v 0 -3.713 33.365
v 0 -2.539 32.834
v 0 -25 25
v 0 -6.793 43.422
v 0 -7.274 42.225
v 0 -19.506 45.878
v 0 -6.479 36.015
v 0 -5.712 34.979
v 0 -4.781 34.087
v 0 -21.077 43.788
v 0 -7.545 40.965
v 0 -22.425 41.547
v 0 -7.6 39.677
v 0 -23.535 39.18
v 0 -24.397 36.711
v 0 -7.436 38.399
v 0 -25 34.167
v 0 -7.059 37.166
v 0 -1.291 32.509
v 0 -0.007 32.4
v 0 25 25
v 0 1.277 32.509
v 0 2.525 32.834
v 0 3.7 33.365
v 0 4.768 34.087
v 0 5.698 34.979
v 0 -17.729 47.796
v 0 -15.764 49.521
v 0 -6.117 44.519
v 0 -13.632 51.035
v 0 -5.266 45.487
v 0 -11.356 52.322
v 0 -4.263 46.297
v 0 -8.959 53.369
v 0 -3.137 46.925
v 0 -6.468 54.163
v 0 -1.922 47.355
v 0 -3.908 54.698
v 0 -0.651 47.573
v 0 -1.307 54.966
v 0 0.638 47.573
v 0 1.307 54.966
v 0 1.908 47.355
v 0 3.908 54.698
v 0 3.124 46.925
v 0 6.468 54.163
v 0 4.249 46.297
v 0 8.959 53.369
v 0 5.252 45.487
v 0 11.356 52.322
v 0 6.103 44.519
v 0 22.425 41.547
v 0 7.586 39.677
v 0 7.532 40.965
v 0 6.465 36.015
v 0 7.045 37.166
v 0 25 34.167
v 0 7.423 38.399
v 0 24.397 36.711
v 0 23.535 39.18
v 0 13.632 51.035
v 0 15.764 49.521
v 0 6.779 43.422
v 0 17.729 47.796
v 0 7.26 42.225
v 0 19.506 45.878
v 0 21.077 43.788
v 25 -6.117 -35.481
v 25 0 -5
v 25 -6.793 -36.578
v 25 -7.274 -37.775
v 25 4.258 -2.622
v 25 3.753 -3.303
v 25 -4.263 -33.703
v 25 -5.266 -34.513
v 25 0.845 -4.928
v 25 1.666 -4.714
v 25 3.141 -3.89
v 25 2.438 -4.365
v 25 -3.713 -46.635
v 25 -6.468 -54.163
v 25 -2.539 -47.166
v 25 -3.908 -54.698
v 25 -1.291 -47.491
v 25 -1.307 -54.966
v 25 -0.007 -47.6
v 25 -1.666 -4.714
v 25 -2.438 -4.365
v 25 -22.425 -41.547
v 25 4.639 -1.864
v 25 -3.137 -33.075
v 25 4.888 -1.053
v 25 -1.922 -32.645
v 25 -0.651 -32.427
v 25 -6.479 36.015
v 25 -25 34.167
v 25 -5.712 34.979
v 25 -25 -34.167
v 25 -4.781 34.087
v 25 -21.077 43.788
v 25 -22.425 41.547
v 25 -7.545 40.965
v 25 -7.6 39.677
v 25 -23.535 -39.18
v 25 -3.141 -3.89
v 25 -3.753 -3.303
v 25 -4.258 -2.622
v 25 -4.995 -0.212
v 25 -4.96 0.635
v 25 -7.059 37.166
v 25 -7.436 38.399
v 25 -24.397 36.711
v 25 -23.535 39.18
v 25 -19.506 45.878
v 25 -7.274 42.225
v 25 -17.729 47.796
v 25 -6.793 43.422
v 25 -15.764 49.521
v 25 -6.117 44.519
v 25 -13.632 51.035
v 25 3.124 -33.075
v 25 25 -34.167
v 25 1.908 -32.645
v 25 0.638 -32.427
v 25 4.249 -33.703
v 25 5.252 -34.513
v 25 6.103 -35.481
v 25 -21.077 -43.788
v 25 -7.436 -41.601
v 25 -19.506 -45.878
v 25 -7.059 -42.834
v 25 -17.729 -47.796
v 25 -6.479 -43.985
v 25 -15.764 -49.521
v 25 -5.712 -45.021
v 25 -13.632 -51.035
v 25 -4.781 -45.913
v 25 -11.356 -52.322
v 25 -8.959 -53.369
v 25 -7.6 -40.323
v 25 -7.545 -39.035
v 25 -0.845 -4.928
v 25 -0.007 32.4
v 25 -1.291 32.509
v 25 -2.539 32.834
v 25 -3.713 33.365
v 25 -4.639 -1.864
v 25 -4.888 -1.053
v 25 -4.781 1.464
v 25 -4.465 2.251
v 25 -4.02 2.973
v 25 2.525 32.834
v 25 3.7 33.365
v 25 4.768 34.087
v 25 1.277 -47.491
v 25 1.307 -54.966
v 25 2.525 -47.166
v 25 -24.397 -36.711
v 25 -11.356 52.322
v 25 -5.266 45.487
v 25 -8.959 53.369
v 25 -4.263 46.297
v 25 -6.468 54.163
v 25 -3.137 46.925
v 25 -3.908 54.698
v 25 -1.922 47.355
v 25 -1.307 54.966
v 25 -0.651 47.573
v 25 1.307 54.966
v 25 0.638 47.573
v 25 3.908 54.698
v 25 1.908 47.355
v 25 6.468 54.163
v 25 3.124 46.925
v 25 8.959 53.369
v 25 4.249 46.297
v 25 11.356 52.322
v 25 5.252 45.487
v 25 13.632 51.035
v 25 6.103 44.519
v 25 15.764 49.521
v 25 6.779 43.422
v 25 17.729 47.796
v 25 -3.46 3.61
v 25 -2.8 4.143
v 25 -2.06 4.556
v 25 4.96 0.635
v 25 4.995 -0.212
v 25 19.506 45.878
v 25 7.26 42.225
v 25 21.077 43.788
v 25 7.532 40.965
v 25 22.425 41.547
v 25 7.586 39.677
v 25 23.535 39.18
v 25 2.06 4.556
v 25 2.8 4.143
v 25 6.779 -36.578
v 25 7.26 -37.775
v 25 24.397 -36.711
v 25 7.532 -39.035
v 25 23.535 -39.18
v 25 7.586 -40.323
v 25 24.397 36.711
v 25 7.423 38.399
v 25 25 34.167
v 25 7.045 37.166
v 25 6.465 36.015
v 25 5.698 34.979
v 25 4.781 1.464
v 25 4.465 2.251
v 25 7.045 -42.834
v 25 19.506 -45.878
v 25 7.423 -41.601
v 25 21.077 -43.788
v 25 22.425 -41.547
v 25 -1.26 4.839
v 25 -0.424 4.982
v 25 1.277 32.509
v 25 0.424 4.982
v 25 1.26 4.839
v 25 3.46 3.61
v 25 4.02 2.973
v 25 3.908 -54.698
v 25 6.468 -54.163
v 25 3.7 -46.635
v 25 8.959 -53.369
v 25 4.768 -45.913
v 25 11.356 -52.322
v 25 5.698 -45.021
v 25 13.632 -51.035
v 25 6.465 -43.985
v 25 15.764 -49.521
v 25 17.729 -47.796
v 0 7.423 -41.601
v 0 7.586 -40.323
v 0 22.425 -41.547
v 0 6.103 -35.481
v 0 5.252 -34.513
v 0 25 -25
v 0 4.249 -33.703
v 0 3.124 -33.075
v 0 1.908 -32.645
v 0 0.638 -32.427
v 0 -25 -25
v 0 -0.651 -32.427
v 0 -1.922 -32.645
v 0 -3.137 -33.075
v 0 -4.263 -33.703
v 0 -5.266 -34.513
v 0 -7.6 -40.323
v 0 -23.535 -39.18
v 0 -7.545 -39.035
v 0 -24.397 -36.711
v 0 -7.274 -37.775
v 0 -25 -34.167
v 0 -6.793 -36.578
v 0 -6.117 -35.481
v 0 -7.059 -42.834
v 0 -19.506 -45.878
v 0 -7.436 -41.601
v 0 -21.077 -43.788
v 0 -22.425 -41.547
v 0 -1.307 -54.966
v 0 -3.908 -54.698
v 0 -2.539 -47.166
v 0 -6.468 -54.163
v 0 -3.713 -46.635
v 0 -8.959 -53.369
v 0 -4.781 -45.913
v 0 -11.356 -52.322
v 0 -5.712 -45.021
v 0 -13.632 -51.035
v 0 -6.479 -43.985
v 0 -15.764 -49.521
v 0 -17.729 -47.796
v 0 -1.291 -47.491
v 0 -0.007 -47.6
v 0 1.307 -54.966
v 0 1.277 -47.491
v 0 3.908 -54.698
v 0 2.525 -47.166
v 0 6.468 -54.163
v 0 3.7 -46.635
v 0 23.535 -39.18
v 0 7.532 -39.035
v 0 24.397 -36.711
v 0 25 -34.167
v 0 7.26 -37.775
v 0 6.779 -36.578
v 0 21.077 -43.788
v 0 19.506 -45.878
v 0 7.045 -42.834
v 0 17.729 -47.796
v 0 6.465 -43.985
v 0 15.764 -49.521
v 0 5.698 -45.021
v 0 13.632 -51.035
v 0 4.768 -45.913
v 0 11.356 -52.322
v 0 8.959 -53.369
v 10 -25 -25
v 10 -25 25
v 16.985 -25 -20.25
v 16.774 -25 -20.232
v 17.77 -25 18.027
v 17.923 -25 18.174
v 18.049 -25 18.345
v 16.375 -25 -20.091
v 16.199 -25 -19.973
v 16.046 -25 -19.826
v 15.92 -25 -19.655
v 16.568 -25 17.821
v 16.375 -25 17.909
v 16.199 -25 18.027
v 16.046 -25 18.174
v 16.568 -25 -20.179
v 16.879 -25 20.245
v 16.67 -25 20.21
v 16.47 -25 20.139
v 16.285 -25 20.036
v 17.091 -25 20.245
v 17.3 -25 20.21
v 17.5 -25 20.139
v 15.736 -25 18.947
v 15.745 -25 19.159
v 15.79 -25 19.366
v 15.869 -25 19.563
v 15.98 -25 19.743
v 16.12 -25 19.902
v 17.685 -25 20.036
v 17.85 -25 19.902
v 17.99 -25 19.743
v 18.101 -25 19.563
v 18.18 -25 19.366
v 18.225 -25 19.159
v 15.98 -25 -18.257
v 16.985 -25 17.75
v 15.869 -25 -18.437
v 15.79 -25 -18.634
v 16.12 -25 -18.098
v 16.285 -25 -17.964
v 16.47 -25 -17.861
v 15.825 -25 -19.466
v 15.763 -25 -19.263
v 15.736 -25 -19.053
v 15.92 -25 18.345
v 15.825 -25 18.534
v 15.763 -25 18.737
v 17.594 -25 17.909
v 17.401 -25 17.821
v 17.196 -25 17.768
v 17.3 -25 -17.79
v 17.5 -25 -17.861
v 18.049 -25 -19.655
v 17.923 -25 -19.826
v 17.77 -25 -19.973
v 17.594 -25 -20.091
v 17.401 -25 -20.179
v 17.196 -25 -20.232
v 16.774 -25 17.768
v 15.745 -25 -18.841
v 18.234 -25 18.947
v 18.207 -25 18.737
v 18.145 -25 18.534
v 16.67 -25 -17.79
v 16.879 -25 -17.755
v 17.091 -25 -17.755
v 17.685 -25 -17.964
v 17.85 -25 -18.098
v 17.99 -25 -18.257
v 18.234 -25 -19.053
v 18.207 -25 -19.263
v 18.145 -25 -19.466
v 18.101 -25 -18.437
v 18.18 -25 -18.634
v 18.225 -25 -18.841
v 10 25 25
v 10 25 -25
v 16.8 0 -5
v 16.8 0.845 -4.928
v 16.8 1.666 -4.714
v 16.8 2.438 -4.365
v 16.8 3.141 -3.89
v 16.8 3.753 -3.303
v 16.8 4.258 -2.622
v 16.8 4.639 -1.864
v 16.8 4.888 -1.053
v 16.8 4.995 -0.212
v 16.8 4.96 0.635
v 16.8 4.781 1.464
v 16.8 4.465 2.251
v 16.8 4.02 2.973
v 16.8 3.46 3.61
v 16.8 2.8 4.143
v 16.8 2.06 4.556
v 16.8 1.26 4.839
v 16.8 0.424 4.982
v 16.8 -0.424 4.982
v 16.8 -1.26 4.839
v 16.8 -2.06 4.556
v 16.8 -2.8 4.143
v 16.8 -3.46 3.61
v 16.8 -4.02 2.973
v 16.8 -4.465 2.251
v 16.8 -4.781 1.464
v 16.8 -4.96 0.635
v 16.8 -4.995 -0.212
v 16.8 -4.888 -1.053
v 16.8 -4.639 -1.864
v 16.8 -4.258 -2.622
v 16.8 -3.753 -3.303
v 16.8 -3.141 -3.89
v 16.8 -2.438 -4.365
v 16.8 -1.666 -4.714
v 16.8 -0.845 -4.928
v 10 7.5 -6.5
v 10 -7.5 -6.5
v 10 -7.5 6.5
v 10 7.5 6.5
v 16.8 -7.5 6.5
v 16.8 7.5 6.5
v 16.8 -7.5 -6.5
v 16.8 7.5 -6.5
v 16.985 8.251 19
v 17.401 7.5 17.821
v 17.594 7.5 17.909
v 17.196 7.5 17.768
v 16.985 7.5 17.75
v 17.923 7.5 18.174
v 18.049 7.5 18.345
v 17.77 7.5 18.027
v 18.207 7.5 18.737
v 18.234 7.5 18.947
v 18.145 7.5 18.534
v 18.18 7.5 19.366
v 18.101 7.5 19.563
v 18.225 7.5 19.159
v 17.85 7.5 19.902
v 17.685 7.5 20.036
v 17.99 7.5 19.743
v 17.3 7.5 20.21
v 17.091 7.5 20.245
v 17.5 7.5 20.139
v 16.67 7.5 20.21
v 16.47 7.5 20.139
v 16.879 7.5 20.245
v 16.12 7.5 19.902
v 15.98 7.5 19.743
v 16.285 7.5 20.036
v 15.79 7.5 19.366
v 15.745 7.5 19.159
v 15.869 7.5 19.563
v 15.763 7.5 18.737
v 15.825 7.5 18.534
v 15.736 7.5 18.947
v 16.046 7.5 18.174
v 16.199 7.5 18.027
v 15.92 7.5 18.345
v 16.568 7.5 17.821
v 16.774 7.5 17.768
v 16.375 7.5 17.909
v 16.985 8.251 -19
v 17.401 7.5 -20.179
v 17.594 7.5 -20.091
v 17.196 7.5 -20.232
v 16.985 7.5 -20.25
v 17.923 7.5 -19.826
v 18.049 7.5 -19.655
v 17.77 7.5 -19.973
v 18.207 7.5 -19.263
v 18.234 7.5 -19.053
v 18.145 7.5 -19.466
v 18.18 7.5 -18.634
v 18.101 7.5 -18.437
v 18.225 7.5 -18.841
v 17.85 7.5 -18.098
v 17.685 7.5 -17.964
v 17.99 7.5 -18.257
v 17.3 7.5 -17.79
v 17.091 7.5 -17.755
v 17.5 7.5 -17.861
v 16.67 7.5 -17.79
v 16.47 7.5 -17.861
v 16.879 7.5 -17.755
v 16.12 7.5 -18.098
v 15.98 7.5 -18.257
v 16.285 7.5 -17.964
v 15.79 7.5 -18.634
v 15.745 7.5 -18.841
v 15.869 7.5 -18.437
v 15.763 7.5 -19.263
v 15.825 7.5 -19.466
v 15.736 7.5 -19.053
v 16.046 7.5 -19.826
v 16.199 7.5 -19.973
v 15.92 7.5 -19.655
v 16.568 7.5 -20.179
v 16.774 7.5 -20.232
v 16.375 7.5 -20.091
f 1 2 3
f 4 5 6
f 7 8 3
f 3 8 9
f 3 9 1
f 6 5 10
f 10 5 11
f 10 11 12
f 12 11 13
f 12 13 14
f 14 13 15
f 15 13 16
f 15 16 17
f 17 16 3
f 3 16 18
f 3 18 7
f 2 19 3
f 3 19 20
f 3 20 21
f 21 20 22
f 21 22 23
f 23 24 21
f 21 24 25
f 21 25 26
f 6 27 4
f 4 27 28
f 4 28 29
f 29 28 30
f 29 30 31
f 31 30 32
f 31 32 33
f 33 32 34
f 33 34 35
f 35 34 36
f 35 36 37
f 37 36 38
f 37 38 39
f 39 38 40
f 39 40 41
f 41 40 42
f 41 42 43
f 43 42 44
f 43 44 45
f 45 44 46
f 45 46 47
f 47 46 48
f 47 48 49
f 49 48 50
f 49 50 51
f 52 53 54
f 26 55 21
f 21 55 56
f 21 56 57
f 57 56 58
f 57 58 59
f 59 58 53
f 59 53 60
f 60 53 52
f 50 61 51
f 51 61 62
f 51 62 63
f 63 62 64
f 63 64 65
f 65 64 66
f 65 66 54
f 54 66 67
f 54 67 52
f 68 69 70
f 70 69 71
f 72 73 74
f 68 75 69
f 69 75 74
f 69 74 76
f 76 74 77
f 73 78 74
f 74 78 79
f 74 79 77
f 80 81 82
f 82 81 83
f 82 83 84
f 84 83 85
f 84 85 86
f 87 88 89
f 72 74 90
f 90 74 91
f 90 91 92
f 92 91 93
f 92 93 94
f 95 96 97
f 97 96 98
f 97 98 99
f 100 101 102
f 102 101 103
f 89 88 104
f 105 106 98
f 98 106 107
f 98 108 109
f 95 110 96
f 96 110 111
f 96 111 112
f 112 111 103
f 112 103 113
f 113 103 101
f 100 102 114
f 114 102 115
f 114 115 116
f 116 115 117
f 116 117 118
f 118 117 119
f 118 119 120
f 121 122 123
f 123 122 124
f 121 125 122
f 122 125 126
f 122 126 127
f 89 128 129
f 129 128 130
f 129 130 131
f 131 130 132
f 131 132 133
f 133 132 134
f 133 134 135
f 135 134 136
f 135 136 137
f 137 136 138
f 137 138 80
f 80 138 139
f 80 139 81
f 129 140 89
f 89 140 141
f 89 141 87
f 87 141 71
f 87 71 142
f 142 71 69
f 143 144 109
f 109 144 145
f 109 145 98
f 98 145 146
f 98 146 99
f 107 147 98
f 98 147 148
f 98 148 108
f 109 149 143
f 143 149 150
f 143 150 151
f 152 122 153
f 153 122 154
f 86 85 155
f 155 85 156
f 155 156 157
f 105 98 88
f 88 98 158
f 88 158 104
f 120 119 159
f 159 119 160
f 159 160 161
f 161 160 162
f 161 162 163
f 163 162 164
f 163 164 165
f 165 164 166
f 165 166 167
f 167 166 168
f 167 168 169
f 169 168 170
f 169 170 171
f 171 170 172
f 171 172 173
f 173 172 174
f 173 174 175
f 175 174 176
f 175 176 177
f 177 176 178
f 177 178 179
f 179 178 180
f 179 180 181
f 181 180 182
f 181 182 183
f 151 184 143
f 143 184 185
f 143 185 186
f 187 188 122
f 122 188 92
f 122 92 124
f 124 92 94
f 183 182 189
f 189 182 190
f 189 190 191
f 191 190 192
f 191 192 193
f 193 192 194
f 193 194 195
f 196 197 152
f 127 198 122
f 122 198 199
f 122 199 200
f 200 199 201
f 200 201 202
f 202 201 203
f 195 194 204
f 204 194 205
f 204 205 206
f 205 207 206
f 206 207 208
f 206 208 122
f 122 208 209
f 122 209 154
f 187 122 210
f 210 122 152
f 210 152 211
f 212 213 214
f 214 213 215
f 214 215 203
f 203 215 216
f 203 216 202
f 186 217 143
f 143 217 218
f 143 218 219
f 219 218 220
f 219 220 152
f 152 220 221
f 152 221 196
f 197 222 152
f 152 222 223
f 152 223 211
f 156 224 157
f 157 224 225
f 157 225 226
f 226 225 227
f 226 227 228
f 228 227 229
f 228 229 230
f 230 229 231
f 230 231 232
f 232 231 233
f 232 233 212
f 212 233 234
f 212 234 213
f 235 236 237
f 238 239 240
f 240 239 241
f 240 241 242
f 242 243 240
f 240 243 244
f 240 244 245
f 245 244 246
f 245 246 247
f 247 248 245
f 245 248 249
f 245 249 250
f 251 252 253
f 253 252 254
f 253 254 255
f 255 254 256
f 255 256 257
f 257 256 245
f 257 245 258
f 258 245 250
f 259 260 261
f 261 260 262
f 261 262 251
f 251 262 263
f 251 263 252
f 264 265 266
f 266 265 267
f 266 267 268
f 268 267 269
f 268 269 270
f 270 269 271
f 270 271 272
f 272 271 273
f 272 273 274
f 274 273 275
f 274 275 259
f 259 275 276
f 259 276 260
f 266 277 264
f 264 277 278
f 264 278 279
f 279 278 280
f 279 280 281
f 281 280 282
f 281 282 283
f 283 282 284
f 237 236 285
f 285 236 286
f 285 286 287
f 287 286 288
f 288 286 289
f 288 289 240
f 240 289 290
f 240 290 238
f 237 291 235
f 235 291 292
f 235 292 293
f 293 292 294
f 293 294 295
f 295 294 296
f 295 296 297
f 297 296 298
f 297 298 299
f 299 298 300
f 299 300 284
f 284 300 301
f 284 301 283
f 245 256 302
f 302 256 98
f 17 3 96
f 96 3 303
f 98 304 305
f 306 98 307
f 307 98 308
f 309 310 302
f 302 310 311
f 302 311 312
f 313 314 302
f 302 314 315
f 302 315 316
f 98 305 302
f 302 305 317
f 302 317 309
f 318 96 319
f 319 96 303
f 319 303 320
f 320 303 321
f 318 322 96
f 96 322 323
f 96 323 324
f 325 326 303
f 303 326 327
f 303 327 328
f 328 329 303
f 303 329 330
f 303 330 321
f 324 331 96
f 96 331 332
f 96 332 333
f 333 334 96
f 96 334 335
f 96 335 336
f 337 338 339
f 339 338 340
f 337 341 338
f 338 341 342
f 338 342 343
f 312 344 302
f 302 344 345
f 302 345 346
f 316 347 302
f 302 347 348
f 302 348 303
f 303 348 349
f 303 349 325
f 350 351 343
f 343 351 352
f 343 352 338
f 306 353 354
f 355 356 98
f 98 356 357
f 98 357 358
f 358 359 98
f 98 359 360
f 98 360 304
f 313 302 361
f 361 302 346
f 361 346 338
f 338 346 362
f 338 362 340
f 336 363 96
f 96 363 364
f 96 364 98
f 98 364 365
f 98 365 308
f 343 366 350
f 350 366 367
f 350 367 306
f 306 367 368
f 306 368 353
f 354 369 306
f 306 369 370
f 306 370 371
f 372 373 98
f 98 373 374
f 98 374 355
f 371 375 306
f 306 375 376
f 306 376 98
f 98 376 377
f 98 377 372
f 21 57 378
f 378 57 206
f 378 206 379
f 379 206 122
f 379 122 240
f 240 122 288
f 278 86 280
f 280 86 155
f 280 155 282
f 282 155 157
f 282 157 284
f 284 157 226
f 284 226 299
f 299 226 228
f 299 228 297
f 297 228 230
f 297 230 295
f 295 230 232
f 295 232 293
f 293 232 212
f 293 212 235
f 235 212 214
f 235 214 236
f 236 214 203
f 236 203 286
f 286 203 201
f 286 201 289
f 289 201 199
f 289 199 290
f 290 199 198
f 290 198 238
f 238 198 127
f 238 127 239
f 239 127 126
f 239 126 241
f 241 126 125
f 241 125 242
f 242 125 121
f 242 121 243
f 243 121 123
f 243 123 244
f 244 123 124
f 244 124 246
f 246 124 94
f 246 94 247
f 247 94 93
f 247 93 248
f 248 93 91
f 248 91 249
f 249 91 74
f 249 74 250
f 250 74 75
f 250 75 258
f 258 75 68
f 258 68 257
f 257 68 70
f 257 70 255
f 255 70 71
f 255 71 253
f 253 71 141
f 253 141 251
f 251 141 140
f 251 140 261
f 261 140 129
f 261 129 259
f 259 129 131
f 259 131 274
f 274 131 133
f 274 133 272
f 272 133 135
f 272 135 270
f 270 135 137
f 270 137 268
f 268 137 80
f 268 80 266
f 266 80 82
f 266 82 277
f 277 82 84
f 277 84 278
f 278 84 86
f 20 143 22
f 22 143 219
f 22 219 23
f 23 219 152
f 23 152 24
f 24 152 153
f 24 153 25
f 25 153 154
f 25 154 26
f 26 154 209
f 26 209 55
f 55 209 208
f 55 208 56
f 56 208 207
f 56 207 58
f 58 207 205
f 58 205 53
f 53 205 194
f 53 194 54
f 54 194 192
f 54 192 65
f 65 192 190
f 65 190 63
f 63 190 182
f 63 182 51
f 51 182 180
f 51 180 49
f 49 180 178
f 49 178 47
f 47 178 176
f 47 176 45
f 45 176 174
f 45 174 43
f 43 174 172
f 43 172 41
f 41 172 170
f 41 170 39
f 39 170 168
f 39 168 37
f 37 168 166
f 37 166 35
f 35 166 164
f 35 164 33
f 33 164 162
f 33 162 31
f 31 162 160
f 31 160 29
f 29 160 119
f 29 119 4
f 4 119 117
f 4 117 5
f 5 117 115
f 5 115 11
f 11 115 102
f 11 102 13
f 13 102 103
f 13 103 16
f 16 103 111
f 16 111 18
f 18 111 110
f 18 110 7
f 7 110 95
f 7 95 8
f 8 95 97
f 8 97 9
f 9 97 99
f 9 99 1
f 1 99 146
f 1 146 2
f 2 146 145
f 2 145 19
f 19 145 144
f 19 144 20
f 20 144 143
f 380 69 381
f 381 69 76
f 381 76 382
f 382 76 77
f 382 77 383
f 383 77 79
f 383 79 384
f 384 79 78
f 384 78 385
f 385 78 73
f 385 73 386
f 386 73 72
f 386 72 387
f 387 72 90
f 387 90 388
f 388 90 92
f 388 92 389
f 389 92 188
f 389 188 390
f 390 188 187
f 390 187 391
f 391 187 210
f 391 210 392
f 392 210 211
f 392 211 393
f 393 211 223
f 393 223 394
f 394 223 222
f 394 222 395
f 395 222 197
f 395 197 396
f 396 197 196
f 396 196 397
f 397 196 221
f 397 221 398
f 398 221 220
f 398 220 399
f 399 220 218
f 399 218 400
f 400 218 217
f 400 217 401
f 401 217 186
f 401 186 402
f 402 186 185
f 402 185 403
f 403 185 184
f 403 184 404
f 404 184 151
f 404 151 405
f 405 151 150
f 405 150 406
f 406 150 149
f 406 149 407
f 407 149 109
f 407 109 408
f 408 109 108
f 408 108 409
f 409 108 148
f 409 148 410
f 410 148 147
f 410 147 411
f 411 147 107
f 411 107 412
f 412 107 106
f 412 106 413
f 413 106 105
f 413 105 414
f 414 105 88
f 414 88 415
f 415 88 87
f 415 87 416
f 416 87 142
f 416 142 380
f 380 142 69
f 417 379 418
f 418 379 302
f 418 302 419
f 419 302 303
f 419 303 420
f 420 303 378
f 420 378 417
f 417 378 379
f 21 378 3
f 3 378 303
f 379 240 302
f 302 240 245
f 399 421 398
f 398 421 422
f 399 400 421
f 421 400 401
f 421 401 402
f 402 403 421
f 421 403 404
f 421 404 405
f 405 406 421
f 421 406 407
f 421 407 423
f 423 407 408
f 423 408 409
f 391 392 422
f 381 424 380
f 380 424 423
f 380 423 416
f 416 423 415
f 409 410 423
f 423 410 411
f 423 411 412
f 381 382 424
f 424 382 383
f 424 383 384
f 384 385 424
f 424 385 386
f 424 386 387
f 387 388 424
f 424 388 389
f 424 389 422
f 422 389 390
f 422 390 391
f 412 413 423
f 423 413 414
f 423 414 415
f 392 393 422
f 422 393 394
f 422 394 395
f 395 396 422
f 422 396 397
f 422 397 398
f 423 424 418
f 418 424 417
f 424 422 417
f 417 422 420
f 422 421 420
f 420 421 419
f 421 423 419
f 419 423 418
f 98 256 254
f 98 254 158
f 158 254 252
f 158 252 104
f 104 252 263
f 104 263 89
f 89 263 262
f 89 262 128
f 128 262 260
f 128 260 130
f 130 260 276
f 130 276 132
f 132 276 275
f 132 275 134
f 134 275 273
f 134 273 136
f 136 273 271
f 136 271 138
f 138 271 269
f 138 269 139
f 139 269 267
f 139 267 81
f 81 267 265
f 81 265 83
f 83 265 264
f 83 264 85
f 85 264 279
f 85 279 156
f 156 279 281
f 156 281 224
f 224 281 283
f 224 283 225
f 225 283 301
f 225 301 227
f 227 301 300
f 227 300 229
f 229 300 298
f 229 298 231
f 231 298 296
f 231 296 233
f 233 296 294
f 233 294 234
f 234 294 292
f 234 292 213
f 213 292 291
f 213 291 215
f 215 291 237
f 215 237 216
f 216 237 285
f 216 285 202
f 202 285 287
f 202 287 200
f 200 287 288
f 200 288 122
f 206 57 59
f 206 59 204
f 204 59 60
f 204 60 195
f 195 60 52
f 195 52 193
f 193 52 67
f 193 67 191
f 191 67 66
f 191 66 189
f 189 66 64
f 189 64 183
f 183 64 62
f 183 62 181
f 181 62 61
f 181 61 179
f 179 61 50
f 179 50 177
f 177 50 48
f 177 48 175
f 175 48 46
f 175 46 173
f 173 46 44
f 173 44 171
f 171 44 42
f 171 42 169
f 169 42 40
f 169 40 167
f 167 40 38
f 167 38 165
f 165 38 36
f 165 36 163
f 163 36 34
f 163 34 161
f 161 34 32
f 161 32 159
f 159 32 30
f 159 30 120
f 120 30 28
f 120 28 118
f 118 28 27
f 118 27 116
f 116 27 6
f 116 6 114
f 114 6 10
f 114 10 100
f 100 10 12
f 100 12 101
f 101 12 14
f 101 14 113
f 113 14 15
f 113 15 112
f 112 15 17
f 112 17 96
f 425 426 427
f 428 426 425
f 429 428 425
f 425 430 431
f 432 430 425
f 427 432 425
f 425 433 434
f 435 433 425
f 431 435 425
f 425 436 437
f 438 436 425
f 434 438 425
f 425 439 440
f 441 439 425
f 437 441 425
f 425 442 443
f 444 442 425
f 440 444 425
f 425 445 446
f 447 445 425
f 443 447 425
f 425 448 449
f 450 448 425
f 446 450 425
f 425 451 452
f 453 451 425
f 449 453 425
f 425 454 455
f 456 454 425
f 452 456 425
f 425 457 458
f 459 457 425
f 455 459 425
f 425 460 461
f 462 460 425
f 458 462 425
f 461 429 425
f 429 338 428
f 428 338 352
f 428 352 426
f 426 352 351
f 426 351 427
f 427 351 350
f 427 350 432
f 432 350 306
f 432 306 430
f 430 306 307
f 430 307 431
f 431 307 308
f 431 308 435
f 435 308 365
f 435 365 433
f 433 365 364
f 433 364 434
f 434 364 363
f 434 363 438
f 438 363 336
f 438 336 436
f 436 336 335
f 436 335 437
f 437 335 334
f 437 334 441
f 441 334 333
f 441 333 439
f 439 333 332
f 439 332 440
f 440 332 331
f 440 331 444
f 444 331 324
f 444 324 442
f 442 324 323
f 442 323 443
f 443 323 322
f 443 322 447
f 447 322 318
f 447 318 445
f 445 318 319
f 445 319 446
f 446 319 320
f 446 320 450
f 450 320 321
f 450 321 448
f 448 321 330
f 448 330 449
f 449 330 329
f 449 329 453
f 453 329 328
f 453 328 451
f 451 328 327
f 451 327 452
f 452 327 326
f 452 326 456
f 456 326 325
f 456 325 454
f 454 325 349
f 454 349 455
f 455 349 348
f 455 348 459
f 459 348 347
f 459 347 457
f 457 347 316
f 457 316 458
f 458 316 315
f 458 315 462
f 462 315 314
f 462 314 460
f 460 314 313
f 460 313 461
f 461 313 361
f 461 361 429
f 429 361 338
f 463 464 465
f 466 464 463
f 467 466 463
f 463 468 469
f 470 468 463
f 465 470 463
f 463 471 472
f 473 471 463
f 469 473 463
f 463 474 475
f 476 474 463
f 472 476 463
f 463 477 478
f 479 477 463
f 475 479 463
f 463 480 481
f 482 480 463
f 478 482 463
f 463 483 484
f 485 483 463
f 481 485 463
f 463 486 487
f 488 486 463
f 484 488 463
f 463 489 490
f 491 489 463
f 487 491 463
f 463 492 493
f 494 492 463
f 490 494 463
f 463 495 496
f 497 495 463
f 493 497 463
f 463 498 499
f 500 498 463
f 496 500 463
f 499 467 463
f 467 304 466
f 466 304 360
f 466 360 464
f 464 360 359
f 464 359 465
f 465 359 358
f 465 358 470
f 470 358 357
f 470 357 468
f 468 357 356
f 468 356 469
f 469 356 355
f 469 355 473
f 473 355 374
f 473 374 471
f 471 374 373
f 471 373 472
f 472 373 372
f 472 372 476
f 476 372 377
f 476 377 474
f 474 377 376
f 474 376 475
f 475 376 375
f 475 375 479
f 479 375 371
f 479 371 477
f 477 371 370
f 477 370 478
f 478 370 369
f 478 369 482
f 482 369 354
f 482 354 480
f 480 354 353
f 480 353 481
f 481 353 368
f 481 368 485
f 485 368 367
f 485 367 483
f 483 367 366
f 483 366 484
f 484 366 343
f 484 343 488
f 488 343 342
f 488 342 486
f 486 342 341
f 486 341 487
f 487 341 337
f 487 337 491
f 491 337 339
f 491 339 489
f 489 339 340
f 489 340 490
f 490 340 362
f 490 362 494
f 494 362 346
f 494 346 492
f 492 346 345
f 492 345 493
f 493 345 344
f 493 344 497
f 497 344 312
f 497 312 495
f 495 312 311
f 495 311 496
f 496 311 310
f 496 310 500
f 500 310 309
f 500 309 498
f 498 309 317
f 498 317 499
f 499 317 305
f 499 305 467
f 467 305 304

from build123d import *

# Parameters (mm, degrees)
SKETCH1_W                       = 110
SKETCH1_H                       = 50
BOSS_EXTRUDE1_DEPTH             = 25
SKETCH2_R                       = 7.6
CUT_EXTRUDE1_DEPTH              = 26
M8_CLEARANCE_HOLE1_D            = 10
M8_CLEARANCE_HOLE1_DEPTH        = 25
M8_CLEARANCE_HOLE1_TIP          = 3.004303095
SKETCH5_W                       = 10
SKETCH5_H                       = 50
CUT_EXTRUDE2_DEPTH              = 51
SKETCH6_W                       = 13
SKETCH6_H                       = 15
CUT_EXTRUDE3_DEPTH              = 6.8
CUT_EXTRUDE4_DEPTH              = 25
TAP_DRILL_FOR_M3X0_5_TAP1_D     = 2.5
TAP_DRILL_FOR_M3X0_5_TAP1_DEPTH = 32.5
TAP_DRILL_FOR_M3X0_5_TAP1_TIP   = 0.751075774


with BuildPart() as part:
    # Sketch1 → Boss-Extrude1 (new body)
    with BuildSketch(Plane(origin=(0, 0, 0), x_dir=(0, 0, -1), z_dir=(1, 0, 0))):
        Rectangle(SKETCH1_W, SKETCH1_H)
    extrude(amount=BOSS_EXTRUDE1_DEPTH)

    # Sketch2 → Cut-Extrude1 (cut, through all)
    with BuildSketch(Plane(origin=(25, 0, 0), x_dir=(0, 0, -1), z_dir=(1, 0, 0))):
        with Locations((-40, -0.006913882)):
            Circle(SKETCH2_R)
        with Locations((40, -0.006913882)):
            Circle(SKETCH2_R)
    extrude(amount=-CUT_EXTRUDE1_DEPTH, mode=Mode.SUBTRACT)

    # M8 Clearance Hole1
    with Locations(Plane(origin=(25, 0, 0), x_dir=(0, 0, -1), z_dir=(1, 0, 0))):
        with Locations((0, 0)):
            Hole(M8_CLEARANCE_HOLE1_D / 2, depth=M8_CLEARANCE_HOLE1_DEPTH)
            with Locations((0, 0, -(M8_CLEARANCE_HOLE1_DEPTH + M8_CLEARANCE_HOLE1_TIP / 2))):  # 118° drill point
                Cone(0, M8_CLEARANCE_HOLE1_D / 2, M8_CLEARANCE_HOLE1_TIP, mode=Mode.SUBTRACT)

    # Sketch5 → Cut-Extrude2 (cut, through all)
    with BuildSketch(Plane.XZ.offset(25)):
        with Locations((5, 0)):
            Rectangle(SKETCH5_W, SKETCH5_H)
    extrude(amount=-CUT_EXTRUDE2_DEPTH, mode=Mode.SUBTRACT)

    # Sketch6 → Cut-Extrude3 (cut)
    with BuildSketch(Plane.ZY.offset(-10)):
        Rectangle(SKETCH6_W, SKETCH6_H)
    extrude(amount=-CUT_EXTRUDE3_DEPTH, mode=Mode.SUBTRACT)

    # Sketch7 → Cut-Extrude4 (cut)
    with BuildSketch(Plane.ZY):
        with BuildLine():
            Line((-25, -25), (-25.995843668, -36.367385103))
            Line((-25.995843668, -36.367385103), (-60.780158428, -28.692554088))
            Line((-60.780158428, -28.692554088), (-59.294707264, 34.562907985))
            Line((-59.294707264, 34.562907985), (-23.260411868, 33.716701439))
            Line((-23.260411868, 33.716701439), (-25, 25))
            ThreePointArc((-25, 25), (-55, 0), (-25, -25))
        make_face()
        with BuildLine():
            Line((25, -25), (27.231233017, -36.367385103))
            Line((27.231233017, -36.367385103), (50.619615813, -36.367385103))
            Line((50.619615813, -36.367385103), (65.908125779, -26.522621757))
            Line((65.908125779, -26.522621757), (65.908125779, 30.480233283))
            Line((65.908125779, 30.480233283), (20.447589522, 40.50382591))
            Line((20.447589522, 40.50382591), (25, 25))
            ThreePointArc((25, 25), (55, 0), (25, -25))
        make_face()
    extrude(amount=-CUT_EXTRUDE4_DEPTH, mode=Mode.SUBTRACT)

    # Tap Drill for M3x0.5 Tap1
    with Locations(Plane(origin=(0, -25, 0), x_dir=(-1, 0, 0), z_dir=(0, -1, 0))):
        with Locations((-16.984771765, 19), (-16.984771765, -19)):
            Hole(TAP_DRILL_FOR_M3X0_5_TAP1_D / 2, depth=TAP_DRILL_FOR_M3X0_5_TAP1_DEPTH)
            with Locations((0, 0, -(TAP_DRILL_FOR_M3X0_5_TAP1_DEPTH + TAP_DRILL_FOR_M3X0_5_TAP1_TIP / 2))):  # 118° drill point
                Cone(0, TAP_DRILL_FOR_M3X0_5_TAP1_D / 2, TAP_DRILL_FOR_M3X0_5_TAP1_TIP, mode=Mode.SUBTRACT)


solid = part.part
